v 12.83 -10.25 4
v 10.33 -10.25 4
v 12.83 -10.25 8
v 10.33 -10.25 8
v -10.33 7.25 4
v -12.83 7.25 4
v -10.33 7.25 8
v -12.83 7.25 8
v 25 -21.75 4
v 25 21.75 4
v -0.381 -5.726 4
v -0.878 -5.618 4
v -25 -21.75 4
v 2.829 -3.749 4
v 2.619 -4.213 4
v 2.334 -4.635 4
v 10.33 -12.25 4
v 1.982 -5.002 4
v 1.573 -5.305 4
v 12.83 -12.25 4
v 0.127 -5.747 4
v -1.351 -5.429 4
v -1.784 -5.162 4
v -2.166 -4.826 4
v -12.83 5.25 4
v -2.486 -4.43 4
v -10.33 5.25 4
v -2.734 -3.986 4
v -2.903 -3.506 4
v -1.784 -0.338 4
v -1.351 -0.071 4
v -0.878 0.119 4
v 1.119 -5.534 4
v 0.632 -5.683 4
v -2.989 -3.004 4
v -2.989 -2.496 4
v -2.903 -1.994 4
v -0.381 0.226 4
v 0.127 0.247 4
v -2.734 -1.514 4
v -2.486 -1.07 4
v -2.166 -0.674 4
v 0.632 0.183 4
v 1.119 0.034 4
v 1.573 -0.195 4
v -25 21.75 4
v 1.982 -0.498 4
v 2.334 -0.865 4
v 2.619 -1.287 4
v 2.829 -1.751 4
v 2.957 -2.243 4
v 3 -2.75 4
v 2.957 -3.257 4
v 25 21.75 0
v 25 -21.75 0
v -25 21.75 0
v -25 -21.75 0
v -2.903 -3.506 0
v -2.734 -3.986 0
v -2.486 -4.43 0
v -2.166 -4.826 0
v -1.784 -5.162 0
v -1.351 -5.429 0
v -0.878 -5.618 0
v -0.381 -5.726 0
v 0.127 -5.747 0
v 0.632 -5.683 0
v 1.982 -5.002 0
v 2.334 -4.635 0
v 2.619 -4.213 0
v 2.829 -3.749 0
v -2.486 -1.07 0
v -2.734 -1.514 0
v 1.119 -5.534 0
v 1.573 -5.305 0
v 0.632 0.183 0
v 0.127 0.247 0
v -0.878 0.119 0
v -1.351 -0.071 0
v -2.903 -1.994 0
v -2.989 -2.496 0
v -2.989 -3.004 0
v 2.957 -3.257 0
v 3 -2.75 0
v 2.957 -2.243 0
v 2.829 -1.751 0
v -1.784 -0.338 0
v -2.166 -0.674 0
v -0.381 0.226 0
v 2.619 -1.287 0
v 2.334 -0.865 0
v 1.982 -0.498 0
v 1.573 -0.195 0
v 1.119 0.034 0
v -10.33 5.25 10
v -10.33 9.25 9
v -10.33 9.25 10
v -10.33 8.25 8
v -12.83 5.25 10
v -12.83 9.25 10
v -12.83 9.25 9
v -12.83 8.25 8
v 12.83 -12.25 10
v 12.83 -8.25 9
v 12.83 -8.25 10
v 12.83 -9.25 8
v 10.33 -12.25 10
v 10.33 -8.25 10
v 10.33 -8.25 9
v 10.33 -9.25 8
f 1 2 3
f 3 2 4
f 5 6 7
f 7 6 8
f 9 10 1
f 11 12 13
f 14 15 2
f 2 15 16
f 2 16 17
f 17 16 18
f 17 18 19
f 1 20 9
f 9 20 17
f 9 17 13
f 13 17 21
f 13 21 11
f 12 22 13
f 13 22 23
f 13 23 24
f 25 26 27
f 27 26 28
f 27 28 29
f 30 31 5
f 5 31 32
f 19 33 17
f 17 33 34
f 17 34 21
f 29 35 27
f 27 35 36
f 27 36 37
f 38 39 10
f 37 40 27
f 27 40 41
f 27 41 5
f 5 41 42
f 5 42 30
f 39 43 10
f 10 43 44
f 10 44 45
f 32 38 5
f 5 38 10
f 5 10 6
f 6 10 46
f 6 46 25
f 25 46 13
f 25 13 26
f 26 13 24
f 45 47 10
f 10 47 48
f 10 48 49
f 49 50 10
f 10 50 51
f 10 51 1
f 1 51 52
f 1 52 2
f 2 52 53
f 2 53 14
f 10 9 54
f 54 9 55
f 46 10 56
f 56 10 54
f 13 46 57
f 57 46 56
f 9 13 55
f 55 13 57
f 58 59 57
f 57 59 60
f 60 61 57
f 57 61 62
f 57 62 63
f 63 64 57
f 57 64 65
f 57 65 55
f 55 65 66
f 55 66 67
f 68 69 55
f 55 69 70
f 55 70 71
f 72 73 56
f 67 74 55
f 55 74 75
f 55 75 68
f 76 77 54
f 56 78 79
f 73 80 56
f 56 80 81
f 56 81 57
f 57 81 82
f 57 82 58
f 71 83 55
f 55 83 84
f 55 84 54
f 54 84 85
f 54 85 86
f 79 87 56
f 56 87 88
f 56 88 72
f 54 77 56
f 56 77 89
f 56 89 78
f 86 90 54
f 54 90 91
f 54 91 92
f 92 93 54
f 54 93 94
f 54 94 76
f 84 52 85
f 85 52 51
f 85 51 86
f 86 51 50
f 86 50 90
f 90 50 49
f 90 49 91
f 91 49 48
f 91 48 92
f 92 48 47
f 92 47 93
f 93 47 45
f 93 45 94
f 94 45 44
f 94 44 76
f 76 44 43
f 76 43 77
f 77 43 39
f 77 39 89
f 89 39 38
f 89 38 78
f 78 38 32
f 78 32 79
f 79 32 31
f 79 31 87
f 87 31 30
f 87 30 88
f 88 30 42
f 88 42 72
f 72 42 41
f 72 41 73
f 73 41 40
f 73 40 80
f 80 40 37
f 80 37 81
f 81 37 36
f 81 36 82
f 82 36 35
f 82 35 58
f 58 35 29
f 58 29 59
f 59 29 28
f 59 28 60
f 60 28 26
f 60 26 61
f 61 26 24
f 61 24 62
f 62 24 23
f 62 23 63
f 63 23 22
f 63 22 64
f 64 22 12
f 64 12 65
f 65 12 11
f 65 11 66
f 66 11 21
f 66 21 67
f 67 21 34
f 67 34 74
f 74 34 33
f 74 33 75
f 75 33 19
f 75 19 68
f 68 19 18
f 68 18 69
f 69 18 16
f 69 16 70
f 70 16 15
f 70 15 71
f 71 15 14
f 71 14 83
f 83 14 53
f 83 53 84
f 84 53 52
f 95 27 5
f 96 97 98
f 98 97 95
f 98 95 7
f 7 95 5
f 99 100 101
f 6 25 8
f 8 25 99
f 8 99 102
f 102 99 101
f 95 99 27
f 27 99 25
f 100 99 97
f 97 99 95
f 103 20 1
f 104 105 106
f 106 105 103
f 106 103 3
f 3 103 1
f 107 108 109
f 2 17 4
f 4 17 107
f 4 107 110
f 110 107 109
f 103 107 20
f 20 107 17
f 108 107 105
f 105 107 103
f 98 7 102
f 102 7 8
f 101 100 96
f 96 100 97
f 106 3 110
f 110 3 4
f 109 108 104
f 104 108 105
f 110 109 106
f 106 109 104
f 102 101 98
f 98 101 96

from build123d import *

# Parameters (mm, degrees)
CROQUIS1_W              = 50
CROQUIS1_H              = 43.5
SALIENTE_EXTRUIR1_DEPTH = 4
CROQUIS2_R              = 3
CORTAR_EXTRUIR1_DEPTH   = 4
CROQUIS3_W              = 2.5
CROQUIS3_H              = 2
SALIENTE_EXTRUIR2_DEPTH = 6
CROQUIS4_W              = 2.5
CROQUIS4_H              = 2
SALIENTE_EXTRUIR3_DEPTH = 2
CROQUIS5_W              = 2.5
CROQUIS5_H              = 2
SALIENTE_EXTRUIR4_DEPTH = 2
CHAFL_N1_SIZE           = 1


with BuildPart() as part:
    # Croquis1 → Saliente-Extruir1 (new body)
    with BuildSketch(Plane.XY):
        Rectangle(CROQUIS1_W, CROQUIS1_H)
    extrude(amount=SALIENTE_EXTRUIR1_DEPTH)

    # Croquis2 → Cortar-Extruir1 (cut)
    with BuildSketch(Plane.XY.offset(4)):
        with Locations((0, -2.75)):
            Circle(CROQUIS2_R)
    extrude(amount=-CORTAR_EXTRUIR1_DEPTH, mode=Mode.SUBTRACT)

    # Croquis3 → Saliente-Extruir2 (add)
    with BuildSketch(Plane.XY.offset(4)):
        with Locations((-11.58, 6.25)):
            Rectangle(CROQUIS3_W, CROQUIS3_H)
        with Locations((11.58, -11.25)):
            Rectangle(CROQUIS3_W, CROQUIS3_H)
    extrude(amount=SALIENTE_EXTRUIR2_DEPTH)

    # Croquis4 → Saliente-Extruir3 (add)
    with BuildSketch(Plane(origin=(0, 7.25, 0), x_dir=(1, 0, 0), z_dir=(0, 1, 0))):
        with Locations((-11.58, -9)):
            Rectangle(CROQUIS4_W, CROQUIS4_H)
    extrude(amount=SALIENTE_EXTRUIR3_DEPTH)

    # Croquis5 → Saliente-Extruir4 (add)
    with BuildSketch(Plane(origin=(0, -10.25, 0), x_dir=(1, 0, 0), z_dir=(0, 1, 0))):
        with Locations((11.58, -9)):
            Rectangle(CROQUIS5_W, CROQUIS5_H)
    extrude(amount=SALIENTE_EXTRUIR4_DEPTH)

    # Chaflán1
    chafl_n1_edges = [part.edges().sort_by_distance(p)[0] for p in [
        (-11.58, 9.25, 8),
        (11.58, -8.25, 8),
    ]]
    chamfer(chafl_n1_edges, length=CHAFL_N1_SIZE)


solid = part.part
